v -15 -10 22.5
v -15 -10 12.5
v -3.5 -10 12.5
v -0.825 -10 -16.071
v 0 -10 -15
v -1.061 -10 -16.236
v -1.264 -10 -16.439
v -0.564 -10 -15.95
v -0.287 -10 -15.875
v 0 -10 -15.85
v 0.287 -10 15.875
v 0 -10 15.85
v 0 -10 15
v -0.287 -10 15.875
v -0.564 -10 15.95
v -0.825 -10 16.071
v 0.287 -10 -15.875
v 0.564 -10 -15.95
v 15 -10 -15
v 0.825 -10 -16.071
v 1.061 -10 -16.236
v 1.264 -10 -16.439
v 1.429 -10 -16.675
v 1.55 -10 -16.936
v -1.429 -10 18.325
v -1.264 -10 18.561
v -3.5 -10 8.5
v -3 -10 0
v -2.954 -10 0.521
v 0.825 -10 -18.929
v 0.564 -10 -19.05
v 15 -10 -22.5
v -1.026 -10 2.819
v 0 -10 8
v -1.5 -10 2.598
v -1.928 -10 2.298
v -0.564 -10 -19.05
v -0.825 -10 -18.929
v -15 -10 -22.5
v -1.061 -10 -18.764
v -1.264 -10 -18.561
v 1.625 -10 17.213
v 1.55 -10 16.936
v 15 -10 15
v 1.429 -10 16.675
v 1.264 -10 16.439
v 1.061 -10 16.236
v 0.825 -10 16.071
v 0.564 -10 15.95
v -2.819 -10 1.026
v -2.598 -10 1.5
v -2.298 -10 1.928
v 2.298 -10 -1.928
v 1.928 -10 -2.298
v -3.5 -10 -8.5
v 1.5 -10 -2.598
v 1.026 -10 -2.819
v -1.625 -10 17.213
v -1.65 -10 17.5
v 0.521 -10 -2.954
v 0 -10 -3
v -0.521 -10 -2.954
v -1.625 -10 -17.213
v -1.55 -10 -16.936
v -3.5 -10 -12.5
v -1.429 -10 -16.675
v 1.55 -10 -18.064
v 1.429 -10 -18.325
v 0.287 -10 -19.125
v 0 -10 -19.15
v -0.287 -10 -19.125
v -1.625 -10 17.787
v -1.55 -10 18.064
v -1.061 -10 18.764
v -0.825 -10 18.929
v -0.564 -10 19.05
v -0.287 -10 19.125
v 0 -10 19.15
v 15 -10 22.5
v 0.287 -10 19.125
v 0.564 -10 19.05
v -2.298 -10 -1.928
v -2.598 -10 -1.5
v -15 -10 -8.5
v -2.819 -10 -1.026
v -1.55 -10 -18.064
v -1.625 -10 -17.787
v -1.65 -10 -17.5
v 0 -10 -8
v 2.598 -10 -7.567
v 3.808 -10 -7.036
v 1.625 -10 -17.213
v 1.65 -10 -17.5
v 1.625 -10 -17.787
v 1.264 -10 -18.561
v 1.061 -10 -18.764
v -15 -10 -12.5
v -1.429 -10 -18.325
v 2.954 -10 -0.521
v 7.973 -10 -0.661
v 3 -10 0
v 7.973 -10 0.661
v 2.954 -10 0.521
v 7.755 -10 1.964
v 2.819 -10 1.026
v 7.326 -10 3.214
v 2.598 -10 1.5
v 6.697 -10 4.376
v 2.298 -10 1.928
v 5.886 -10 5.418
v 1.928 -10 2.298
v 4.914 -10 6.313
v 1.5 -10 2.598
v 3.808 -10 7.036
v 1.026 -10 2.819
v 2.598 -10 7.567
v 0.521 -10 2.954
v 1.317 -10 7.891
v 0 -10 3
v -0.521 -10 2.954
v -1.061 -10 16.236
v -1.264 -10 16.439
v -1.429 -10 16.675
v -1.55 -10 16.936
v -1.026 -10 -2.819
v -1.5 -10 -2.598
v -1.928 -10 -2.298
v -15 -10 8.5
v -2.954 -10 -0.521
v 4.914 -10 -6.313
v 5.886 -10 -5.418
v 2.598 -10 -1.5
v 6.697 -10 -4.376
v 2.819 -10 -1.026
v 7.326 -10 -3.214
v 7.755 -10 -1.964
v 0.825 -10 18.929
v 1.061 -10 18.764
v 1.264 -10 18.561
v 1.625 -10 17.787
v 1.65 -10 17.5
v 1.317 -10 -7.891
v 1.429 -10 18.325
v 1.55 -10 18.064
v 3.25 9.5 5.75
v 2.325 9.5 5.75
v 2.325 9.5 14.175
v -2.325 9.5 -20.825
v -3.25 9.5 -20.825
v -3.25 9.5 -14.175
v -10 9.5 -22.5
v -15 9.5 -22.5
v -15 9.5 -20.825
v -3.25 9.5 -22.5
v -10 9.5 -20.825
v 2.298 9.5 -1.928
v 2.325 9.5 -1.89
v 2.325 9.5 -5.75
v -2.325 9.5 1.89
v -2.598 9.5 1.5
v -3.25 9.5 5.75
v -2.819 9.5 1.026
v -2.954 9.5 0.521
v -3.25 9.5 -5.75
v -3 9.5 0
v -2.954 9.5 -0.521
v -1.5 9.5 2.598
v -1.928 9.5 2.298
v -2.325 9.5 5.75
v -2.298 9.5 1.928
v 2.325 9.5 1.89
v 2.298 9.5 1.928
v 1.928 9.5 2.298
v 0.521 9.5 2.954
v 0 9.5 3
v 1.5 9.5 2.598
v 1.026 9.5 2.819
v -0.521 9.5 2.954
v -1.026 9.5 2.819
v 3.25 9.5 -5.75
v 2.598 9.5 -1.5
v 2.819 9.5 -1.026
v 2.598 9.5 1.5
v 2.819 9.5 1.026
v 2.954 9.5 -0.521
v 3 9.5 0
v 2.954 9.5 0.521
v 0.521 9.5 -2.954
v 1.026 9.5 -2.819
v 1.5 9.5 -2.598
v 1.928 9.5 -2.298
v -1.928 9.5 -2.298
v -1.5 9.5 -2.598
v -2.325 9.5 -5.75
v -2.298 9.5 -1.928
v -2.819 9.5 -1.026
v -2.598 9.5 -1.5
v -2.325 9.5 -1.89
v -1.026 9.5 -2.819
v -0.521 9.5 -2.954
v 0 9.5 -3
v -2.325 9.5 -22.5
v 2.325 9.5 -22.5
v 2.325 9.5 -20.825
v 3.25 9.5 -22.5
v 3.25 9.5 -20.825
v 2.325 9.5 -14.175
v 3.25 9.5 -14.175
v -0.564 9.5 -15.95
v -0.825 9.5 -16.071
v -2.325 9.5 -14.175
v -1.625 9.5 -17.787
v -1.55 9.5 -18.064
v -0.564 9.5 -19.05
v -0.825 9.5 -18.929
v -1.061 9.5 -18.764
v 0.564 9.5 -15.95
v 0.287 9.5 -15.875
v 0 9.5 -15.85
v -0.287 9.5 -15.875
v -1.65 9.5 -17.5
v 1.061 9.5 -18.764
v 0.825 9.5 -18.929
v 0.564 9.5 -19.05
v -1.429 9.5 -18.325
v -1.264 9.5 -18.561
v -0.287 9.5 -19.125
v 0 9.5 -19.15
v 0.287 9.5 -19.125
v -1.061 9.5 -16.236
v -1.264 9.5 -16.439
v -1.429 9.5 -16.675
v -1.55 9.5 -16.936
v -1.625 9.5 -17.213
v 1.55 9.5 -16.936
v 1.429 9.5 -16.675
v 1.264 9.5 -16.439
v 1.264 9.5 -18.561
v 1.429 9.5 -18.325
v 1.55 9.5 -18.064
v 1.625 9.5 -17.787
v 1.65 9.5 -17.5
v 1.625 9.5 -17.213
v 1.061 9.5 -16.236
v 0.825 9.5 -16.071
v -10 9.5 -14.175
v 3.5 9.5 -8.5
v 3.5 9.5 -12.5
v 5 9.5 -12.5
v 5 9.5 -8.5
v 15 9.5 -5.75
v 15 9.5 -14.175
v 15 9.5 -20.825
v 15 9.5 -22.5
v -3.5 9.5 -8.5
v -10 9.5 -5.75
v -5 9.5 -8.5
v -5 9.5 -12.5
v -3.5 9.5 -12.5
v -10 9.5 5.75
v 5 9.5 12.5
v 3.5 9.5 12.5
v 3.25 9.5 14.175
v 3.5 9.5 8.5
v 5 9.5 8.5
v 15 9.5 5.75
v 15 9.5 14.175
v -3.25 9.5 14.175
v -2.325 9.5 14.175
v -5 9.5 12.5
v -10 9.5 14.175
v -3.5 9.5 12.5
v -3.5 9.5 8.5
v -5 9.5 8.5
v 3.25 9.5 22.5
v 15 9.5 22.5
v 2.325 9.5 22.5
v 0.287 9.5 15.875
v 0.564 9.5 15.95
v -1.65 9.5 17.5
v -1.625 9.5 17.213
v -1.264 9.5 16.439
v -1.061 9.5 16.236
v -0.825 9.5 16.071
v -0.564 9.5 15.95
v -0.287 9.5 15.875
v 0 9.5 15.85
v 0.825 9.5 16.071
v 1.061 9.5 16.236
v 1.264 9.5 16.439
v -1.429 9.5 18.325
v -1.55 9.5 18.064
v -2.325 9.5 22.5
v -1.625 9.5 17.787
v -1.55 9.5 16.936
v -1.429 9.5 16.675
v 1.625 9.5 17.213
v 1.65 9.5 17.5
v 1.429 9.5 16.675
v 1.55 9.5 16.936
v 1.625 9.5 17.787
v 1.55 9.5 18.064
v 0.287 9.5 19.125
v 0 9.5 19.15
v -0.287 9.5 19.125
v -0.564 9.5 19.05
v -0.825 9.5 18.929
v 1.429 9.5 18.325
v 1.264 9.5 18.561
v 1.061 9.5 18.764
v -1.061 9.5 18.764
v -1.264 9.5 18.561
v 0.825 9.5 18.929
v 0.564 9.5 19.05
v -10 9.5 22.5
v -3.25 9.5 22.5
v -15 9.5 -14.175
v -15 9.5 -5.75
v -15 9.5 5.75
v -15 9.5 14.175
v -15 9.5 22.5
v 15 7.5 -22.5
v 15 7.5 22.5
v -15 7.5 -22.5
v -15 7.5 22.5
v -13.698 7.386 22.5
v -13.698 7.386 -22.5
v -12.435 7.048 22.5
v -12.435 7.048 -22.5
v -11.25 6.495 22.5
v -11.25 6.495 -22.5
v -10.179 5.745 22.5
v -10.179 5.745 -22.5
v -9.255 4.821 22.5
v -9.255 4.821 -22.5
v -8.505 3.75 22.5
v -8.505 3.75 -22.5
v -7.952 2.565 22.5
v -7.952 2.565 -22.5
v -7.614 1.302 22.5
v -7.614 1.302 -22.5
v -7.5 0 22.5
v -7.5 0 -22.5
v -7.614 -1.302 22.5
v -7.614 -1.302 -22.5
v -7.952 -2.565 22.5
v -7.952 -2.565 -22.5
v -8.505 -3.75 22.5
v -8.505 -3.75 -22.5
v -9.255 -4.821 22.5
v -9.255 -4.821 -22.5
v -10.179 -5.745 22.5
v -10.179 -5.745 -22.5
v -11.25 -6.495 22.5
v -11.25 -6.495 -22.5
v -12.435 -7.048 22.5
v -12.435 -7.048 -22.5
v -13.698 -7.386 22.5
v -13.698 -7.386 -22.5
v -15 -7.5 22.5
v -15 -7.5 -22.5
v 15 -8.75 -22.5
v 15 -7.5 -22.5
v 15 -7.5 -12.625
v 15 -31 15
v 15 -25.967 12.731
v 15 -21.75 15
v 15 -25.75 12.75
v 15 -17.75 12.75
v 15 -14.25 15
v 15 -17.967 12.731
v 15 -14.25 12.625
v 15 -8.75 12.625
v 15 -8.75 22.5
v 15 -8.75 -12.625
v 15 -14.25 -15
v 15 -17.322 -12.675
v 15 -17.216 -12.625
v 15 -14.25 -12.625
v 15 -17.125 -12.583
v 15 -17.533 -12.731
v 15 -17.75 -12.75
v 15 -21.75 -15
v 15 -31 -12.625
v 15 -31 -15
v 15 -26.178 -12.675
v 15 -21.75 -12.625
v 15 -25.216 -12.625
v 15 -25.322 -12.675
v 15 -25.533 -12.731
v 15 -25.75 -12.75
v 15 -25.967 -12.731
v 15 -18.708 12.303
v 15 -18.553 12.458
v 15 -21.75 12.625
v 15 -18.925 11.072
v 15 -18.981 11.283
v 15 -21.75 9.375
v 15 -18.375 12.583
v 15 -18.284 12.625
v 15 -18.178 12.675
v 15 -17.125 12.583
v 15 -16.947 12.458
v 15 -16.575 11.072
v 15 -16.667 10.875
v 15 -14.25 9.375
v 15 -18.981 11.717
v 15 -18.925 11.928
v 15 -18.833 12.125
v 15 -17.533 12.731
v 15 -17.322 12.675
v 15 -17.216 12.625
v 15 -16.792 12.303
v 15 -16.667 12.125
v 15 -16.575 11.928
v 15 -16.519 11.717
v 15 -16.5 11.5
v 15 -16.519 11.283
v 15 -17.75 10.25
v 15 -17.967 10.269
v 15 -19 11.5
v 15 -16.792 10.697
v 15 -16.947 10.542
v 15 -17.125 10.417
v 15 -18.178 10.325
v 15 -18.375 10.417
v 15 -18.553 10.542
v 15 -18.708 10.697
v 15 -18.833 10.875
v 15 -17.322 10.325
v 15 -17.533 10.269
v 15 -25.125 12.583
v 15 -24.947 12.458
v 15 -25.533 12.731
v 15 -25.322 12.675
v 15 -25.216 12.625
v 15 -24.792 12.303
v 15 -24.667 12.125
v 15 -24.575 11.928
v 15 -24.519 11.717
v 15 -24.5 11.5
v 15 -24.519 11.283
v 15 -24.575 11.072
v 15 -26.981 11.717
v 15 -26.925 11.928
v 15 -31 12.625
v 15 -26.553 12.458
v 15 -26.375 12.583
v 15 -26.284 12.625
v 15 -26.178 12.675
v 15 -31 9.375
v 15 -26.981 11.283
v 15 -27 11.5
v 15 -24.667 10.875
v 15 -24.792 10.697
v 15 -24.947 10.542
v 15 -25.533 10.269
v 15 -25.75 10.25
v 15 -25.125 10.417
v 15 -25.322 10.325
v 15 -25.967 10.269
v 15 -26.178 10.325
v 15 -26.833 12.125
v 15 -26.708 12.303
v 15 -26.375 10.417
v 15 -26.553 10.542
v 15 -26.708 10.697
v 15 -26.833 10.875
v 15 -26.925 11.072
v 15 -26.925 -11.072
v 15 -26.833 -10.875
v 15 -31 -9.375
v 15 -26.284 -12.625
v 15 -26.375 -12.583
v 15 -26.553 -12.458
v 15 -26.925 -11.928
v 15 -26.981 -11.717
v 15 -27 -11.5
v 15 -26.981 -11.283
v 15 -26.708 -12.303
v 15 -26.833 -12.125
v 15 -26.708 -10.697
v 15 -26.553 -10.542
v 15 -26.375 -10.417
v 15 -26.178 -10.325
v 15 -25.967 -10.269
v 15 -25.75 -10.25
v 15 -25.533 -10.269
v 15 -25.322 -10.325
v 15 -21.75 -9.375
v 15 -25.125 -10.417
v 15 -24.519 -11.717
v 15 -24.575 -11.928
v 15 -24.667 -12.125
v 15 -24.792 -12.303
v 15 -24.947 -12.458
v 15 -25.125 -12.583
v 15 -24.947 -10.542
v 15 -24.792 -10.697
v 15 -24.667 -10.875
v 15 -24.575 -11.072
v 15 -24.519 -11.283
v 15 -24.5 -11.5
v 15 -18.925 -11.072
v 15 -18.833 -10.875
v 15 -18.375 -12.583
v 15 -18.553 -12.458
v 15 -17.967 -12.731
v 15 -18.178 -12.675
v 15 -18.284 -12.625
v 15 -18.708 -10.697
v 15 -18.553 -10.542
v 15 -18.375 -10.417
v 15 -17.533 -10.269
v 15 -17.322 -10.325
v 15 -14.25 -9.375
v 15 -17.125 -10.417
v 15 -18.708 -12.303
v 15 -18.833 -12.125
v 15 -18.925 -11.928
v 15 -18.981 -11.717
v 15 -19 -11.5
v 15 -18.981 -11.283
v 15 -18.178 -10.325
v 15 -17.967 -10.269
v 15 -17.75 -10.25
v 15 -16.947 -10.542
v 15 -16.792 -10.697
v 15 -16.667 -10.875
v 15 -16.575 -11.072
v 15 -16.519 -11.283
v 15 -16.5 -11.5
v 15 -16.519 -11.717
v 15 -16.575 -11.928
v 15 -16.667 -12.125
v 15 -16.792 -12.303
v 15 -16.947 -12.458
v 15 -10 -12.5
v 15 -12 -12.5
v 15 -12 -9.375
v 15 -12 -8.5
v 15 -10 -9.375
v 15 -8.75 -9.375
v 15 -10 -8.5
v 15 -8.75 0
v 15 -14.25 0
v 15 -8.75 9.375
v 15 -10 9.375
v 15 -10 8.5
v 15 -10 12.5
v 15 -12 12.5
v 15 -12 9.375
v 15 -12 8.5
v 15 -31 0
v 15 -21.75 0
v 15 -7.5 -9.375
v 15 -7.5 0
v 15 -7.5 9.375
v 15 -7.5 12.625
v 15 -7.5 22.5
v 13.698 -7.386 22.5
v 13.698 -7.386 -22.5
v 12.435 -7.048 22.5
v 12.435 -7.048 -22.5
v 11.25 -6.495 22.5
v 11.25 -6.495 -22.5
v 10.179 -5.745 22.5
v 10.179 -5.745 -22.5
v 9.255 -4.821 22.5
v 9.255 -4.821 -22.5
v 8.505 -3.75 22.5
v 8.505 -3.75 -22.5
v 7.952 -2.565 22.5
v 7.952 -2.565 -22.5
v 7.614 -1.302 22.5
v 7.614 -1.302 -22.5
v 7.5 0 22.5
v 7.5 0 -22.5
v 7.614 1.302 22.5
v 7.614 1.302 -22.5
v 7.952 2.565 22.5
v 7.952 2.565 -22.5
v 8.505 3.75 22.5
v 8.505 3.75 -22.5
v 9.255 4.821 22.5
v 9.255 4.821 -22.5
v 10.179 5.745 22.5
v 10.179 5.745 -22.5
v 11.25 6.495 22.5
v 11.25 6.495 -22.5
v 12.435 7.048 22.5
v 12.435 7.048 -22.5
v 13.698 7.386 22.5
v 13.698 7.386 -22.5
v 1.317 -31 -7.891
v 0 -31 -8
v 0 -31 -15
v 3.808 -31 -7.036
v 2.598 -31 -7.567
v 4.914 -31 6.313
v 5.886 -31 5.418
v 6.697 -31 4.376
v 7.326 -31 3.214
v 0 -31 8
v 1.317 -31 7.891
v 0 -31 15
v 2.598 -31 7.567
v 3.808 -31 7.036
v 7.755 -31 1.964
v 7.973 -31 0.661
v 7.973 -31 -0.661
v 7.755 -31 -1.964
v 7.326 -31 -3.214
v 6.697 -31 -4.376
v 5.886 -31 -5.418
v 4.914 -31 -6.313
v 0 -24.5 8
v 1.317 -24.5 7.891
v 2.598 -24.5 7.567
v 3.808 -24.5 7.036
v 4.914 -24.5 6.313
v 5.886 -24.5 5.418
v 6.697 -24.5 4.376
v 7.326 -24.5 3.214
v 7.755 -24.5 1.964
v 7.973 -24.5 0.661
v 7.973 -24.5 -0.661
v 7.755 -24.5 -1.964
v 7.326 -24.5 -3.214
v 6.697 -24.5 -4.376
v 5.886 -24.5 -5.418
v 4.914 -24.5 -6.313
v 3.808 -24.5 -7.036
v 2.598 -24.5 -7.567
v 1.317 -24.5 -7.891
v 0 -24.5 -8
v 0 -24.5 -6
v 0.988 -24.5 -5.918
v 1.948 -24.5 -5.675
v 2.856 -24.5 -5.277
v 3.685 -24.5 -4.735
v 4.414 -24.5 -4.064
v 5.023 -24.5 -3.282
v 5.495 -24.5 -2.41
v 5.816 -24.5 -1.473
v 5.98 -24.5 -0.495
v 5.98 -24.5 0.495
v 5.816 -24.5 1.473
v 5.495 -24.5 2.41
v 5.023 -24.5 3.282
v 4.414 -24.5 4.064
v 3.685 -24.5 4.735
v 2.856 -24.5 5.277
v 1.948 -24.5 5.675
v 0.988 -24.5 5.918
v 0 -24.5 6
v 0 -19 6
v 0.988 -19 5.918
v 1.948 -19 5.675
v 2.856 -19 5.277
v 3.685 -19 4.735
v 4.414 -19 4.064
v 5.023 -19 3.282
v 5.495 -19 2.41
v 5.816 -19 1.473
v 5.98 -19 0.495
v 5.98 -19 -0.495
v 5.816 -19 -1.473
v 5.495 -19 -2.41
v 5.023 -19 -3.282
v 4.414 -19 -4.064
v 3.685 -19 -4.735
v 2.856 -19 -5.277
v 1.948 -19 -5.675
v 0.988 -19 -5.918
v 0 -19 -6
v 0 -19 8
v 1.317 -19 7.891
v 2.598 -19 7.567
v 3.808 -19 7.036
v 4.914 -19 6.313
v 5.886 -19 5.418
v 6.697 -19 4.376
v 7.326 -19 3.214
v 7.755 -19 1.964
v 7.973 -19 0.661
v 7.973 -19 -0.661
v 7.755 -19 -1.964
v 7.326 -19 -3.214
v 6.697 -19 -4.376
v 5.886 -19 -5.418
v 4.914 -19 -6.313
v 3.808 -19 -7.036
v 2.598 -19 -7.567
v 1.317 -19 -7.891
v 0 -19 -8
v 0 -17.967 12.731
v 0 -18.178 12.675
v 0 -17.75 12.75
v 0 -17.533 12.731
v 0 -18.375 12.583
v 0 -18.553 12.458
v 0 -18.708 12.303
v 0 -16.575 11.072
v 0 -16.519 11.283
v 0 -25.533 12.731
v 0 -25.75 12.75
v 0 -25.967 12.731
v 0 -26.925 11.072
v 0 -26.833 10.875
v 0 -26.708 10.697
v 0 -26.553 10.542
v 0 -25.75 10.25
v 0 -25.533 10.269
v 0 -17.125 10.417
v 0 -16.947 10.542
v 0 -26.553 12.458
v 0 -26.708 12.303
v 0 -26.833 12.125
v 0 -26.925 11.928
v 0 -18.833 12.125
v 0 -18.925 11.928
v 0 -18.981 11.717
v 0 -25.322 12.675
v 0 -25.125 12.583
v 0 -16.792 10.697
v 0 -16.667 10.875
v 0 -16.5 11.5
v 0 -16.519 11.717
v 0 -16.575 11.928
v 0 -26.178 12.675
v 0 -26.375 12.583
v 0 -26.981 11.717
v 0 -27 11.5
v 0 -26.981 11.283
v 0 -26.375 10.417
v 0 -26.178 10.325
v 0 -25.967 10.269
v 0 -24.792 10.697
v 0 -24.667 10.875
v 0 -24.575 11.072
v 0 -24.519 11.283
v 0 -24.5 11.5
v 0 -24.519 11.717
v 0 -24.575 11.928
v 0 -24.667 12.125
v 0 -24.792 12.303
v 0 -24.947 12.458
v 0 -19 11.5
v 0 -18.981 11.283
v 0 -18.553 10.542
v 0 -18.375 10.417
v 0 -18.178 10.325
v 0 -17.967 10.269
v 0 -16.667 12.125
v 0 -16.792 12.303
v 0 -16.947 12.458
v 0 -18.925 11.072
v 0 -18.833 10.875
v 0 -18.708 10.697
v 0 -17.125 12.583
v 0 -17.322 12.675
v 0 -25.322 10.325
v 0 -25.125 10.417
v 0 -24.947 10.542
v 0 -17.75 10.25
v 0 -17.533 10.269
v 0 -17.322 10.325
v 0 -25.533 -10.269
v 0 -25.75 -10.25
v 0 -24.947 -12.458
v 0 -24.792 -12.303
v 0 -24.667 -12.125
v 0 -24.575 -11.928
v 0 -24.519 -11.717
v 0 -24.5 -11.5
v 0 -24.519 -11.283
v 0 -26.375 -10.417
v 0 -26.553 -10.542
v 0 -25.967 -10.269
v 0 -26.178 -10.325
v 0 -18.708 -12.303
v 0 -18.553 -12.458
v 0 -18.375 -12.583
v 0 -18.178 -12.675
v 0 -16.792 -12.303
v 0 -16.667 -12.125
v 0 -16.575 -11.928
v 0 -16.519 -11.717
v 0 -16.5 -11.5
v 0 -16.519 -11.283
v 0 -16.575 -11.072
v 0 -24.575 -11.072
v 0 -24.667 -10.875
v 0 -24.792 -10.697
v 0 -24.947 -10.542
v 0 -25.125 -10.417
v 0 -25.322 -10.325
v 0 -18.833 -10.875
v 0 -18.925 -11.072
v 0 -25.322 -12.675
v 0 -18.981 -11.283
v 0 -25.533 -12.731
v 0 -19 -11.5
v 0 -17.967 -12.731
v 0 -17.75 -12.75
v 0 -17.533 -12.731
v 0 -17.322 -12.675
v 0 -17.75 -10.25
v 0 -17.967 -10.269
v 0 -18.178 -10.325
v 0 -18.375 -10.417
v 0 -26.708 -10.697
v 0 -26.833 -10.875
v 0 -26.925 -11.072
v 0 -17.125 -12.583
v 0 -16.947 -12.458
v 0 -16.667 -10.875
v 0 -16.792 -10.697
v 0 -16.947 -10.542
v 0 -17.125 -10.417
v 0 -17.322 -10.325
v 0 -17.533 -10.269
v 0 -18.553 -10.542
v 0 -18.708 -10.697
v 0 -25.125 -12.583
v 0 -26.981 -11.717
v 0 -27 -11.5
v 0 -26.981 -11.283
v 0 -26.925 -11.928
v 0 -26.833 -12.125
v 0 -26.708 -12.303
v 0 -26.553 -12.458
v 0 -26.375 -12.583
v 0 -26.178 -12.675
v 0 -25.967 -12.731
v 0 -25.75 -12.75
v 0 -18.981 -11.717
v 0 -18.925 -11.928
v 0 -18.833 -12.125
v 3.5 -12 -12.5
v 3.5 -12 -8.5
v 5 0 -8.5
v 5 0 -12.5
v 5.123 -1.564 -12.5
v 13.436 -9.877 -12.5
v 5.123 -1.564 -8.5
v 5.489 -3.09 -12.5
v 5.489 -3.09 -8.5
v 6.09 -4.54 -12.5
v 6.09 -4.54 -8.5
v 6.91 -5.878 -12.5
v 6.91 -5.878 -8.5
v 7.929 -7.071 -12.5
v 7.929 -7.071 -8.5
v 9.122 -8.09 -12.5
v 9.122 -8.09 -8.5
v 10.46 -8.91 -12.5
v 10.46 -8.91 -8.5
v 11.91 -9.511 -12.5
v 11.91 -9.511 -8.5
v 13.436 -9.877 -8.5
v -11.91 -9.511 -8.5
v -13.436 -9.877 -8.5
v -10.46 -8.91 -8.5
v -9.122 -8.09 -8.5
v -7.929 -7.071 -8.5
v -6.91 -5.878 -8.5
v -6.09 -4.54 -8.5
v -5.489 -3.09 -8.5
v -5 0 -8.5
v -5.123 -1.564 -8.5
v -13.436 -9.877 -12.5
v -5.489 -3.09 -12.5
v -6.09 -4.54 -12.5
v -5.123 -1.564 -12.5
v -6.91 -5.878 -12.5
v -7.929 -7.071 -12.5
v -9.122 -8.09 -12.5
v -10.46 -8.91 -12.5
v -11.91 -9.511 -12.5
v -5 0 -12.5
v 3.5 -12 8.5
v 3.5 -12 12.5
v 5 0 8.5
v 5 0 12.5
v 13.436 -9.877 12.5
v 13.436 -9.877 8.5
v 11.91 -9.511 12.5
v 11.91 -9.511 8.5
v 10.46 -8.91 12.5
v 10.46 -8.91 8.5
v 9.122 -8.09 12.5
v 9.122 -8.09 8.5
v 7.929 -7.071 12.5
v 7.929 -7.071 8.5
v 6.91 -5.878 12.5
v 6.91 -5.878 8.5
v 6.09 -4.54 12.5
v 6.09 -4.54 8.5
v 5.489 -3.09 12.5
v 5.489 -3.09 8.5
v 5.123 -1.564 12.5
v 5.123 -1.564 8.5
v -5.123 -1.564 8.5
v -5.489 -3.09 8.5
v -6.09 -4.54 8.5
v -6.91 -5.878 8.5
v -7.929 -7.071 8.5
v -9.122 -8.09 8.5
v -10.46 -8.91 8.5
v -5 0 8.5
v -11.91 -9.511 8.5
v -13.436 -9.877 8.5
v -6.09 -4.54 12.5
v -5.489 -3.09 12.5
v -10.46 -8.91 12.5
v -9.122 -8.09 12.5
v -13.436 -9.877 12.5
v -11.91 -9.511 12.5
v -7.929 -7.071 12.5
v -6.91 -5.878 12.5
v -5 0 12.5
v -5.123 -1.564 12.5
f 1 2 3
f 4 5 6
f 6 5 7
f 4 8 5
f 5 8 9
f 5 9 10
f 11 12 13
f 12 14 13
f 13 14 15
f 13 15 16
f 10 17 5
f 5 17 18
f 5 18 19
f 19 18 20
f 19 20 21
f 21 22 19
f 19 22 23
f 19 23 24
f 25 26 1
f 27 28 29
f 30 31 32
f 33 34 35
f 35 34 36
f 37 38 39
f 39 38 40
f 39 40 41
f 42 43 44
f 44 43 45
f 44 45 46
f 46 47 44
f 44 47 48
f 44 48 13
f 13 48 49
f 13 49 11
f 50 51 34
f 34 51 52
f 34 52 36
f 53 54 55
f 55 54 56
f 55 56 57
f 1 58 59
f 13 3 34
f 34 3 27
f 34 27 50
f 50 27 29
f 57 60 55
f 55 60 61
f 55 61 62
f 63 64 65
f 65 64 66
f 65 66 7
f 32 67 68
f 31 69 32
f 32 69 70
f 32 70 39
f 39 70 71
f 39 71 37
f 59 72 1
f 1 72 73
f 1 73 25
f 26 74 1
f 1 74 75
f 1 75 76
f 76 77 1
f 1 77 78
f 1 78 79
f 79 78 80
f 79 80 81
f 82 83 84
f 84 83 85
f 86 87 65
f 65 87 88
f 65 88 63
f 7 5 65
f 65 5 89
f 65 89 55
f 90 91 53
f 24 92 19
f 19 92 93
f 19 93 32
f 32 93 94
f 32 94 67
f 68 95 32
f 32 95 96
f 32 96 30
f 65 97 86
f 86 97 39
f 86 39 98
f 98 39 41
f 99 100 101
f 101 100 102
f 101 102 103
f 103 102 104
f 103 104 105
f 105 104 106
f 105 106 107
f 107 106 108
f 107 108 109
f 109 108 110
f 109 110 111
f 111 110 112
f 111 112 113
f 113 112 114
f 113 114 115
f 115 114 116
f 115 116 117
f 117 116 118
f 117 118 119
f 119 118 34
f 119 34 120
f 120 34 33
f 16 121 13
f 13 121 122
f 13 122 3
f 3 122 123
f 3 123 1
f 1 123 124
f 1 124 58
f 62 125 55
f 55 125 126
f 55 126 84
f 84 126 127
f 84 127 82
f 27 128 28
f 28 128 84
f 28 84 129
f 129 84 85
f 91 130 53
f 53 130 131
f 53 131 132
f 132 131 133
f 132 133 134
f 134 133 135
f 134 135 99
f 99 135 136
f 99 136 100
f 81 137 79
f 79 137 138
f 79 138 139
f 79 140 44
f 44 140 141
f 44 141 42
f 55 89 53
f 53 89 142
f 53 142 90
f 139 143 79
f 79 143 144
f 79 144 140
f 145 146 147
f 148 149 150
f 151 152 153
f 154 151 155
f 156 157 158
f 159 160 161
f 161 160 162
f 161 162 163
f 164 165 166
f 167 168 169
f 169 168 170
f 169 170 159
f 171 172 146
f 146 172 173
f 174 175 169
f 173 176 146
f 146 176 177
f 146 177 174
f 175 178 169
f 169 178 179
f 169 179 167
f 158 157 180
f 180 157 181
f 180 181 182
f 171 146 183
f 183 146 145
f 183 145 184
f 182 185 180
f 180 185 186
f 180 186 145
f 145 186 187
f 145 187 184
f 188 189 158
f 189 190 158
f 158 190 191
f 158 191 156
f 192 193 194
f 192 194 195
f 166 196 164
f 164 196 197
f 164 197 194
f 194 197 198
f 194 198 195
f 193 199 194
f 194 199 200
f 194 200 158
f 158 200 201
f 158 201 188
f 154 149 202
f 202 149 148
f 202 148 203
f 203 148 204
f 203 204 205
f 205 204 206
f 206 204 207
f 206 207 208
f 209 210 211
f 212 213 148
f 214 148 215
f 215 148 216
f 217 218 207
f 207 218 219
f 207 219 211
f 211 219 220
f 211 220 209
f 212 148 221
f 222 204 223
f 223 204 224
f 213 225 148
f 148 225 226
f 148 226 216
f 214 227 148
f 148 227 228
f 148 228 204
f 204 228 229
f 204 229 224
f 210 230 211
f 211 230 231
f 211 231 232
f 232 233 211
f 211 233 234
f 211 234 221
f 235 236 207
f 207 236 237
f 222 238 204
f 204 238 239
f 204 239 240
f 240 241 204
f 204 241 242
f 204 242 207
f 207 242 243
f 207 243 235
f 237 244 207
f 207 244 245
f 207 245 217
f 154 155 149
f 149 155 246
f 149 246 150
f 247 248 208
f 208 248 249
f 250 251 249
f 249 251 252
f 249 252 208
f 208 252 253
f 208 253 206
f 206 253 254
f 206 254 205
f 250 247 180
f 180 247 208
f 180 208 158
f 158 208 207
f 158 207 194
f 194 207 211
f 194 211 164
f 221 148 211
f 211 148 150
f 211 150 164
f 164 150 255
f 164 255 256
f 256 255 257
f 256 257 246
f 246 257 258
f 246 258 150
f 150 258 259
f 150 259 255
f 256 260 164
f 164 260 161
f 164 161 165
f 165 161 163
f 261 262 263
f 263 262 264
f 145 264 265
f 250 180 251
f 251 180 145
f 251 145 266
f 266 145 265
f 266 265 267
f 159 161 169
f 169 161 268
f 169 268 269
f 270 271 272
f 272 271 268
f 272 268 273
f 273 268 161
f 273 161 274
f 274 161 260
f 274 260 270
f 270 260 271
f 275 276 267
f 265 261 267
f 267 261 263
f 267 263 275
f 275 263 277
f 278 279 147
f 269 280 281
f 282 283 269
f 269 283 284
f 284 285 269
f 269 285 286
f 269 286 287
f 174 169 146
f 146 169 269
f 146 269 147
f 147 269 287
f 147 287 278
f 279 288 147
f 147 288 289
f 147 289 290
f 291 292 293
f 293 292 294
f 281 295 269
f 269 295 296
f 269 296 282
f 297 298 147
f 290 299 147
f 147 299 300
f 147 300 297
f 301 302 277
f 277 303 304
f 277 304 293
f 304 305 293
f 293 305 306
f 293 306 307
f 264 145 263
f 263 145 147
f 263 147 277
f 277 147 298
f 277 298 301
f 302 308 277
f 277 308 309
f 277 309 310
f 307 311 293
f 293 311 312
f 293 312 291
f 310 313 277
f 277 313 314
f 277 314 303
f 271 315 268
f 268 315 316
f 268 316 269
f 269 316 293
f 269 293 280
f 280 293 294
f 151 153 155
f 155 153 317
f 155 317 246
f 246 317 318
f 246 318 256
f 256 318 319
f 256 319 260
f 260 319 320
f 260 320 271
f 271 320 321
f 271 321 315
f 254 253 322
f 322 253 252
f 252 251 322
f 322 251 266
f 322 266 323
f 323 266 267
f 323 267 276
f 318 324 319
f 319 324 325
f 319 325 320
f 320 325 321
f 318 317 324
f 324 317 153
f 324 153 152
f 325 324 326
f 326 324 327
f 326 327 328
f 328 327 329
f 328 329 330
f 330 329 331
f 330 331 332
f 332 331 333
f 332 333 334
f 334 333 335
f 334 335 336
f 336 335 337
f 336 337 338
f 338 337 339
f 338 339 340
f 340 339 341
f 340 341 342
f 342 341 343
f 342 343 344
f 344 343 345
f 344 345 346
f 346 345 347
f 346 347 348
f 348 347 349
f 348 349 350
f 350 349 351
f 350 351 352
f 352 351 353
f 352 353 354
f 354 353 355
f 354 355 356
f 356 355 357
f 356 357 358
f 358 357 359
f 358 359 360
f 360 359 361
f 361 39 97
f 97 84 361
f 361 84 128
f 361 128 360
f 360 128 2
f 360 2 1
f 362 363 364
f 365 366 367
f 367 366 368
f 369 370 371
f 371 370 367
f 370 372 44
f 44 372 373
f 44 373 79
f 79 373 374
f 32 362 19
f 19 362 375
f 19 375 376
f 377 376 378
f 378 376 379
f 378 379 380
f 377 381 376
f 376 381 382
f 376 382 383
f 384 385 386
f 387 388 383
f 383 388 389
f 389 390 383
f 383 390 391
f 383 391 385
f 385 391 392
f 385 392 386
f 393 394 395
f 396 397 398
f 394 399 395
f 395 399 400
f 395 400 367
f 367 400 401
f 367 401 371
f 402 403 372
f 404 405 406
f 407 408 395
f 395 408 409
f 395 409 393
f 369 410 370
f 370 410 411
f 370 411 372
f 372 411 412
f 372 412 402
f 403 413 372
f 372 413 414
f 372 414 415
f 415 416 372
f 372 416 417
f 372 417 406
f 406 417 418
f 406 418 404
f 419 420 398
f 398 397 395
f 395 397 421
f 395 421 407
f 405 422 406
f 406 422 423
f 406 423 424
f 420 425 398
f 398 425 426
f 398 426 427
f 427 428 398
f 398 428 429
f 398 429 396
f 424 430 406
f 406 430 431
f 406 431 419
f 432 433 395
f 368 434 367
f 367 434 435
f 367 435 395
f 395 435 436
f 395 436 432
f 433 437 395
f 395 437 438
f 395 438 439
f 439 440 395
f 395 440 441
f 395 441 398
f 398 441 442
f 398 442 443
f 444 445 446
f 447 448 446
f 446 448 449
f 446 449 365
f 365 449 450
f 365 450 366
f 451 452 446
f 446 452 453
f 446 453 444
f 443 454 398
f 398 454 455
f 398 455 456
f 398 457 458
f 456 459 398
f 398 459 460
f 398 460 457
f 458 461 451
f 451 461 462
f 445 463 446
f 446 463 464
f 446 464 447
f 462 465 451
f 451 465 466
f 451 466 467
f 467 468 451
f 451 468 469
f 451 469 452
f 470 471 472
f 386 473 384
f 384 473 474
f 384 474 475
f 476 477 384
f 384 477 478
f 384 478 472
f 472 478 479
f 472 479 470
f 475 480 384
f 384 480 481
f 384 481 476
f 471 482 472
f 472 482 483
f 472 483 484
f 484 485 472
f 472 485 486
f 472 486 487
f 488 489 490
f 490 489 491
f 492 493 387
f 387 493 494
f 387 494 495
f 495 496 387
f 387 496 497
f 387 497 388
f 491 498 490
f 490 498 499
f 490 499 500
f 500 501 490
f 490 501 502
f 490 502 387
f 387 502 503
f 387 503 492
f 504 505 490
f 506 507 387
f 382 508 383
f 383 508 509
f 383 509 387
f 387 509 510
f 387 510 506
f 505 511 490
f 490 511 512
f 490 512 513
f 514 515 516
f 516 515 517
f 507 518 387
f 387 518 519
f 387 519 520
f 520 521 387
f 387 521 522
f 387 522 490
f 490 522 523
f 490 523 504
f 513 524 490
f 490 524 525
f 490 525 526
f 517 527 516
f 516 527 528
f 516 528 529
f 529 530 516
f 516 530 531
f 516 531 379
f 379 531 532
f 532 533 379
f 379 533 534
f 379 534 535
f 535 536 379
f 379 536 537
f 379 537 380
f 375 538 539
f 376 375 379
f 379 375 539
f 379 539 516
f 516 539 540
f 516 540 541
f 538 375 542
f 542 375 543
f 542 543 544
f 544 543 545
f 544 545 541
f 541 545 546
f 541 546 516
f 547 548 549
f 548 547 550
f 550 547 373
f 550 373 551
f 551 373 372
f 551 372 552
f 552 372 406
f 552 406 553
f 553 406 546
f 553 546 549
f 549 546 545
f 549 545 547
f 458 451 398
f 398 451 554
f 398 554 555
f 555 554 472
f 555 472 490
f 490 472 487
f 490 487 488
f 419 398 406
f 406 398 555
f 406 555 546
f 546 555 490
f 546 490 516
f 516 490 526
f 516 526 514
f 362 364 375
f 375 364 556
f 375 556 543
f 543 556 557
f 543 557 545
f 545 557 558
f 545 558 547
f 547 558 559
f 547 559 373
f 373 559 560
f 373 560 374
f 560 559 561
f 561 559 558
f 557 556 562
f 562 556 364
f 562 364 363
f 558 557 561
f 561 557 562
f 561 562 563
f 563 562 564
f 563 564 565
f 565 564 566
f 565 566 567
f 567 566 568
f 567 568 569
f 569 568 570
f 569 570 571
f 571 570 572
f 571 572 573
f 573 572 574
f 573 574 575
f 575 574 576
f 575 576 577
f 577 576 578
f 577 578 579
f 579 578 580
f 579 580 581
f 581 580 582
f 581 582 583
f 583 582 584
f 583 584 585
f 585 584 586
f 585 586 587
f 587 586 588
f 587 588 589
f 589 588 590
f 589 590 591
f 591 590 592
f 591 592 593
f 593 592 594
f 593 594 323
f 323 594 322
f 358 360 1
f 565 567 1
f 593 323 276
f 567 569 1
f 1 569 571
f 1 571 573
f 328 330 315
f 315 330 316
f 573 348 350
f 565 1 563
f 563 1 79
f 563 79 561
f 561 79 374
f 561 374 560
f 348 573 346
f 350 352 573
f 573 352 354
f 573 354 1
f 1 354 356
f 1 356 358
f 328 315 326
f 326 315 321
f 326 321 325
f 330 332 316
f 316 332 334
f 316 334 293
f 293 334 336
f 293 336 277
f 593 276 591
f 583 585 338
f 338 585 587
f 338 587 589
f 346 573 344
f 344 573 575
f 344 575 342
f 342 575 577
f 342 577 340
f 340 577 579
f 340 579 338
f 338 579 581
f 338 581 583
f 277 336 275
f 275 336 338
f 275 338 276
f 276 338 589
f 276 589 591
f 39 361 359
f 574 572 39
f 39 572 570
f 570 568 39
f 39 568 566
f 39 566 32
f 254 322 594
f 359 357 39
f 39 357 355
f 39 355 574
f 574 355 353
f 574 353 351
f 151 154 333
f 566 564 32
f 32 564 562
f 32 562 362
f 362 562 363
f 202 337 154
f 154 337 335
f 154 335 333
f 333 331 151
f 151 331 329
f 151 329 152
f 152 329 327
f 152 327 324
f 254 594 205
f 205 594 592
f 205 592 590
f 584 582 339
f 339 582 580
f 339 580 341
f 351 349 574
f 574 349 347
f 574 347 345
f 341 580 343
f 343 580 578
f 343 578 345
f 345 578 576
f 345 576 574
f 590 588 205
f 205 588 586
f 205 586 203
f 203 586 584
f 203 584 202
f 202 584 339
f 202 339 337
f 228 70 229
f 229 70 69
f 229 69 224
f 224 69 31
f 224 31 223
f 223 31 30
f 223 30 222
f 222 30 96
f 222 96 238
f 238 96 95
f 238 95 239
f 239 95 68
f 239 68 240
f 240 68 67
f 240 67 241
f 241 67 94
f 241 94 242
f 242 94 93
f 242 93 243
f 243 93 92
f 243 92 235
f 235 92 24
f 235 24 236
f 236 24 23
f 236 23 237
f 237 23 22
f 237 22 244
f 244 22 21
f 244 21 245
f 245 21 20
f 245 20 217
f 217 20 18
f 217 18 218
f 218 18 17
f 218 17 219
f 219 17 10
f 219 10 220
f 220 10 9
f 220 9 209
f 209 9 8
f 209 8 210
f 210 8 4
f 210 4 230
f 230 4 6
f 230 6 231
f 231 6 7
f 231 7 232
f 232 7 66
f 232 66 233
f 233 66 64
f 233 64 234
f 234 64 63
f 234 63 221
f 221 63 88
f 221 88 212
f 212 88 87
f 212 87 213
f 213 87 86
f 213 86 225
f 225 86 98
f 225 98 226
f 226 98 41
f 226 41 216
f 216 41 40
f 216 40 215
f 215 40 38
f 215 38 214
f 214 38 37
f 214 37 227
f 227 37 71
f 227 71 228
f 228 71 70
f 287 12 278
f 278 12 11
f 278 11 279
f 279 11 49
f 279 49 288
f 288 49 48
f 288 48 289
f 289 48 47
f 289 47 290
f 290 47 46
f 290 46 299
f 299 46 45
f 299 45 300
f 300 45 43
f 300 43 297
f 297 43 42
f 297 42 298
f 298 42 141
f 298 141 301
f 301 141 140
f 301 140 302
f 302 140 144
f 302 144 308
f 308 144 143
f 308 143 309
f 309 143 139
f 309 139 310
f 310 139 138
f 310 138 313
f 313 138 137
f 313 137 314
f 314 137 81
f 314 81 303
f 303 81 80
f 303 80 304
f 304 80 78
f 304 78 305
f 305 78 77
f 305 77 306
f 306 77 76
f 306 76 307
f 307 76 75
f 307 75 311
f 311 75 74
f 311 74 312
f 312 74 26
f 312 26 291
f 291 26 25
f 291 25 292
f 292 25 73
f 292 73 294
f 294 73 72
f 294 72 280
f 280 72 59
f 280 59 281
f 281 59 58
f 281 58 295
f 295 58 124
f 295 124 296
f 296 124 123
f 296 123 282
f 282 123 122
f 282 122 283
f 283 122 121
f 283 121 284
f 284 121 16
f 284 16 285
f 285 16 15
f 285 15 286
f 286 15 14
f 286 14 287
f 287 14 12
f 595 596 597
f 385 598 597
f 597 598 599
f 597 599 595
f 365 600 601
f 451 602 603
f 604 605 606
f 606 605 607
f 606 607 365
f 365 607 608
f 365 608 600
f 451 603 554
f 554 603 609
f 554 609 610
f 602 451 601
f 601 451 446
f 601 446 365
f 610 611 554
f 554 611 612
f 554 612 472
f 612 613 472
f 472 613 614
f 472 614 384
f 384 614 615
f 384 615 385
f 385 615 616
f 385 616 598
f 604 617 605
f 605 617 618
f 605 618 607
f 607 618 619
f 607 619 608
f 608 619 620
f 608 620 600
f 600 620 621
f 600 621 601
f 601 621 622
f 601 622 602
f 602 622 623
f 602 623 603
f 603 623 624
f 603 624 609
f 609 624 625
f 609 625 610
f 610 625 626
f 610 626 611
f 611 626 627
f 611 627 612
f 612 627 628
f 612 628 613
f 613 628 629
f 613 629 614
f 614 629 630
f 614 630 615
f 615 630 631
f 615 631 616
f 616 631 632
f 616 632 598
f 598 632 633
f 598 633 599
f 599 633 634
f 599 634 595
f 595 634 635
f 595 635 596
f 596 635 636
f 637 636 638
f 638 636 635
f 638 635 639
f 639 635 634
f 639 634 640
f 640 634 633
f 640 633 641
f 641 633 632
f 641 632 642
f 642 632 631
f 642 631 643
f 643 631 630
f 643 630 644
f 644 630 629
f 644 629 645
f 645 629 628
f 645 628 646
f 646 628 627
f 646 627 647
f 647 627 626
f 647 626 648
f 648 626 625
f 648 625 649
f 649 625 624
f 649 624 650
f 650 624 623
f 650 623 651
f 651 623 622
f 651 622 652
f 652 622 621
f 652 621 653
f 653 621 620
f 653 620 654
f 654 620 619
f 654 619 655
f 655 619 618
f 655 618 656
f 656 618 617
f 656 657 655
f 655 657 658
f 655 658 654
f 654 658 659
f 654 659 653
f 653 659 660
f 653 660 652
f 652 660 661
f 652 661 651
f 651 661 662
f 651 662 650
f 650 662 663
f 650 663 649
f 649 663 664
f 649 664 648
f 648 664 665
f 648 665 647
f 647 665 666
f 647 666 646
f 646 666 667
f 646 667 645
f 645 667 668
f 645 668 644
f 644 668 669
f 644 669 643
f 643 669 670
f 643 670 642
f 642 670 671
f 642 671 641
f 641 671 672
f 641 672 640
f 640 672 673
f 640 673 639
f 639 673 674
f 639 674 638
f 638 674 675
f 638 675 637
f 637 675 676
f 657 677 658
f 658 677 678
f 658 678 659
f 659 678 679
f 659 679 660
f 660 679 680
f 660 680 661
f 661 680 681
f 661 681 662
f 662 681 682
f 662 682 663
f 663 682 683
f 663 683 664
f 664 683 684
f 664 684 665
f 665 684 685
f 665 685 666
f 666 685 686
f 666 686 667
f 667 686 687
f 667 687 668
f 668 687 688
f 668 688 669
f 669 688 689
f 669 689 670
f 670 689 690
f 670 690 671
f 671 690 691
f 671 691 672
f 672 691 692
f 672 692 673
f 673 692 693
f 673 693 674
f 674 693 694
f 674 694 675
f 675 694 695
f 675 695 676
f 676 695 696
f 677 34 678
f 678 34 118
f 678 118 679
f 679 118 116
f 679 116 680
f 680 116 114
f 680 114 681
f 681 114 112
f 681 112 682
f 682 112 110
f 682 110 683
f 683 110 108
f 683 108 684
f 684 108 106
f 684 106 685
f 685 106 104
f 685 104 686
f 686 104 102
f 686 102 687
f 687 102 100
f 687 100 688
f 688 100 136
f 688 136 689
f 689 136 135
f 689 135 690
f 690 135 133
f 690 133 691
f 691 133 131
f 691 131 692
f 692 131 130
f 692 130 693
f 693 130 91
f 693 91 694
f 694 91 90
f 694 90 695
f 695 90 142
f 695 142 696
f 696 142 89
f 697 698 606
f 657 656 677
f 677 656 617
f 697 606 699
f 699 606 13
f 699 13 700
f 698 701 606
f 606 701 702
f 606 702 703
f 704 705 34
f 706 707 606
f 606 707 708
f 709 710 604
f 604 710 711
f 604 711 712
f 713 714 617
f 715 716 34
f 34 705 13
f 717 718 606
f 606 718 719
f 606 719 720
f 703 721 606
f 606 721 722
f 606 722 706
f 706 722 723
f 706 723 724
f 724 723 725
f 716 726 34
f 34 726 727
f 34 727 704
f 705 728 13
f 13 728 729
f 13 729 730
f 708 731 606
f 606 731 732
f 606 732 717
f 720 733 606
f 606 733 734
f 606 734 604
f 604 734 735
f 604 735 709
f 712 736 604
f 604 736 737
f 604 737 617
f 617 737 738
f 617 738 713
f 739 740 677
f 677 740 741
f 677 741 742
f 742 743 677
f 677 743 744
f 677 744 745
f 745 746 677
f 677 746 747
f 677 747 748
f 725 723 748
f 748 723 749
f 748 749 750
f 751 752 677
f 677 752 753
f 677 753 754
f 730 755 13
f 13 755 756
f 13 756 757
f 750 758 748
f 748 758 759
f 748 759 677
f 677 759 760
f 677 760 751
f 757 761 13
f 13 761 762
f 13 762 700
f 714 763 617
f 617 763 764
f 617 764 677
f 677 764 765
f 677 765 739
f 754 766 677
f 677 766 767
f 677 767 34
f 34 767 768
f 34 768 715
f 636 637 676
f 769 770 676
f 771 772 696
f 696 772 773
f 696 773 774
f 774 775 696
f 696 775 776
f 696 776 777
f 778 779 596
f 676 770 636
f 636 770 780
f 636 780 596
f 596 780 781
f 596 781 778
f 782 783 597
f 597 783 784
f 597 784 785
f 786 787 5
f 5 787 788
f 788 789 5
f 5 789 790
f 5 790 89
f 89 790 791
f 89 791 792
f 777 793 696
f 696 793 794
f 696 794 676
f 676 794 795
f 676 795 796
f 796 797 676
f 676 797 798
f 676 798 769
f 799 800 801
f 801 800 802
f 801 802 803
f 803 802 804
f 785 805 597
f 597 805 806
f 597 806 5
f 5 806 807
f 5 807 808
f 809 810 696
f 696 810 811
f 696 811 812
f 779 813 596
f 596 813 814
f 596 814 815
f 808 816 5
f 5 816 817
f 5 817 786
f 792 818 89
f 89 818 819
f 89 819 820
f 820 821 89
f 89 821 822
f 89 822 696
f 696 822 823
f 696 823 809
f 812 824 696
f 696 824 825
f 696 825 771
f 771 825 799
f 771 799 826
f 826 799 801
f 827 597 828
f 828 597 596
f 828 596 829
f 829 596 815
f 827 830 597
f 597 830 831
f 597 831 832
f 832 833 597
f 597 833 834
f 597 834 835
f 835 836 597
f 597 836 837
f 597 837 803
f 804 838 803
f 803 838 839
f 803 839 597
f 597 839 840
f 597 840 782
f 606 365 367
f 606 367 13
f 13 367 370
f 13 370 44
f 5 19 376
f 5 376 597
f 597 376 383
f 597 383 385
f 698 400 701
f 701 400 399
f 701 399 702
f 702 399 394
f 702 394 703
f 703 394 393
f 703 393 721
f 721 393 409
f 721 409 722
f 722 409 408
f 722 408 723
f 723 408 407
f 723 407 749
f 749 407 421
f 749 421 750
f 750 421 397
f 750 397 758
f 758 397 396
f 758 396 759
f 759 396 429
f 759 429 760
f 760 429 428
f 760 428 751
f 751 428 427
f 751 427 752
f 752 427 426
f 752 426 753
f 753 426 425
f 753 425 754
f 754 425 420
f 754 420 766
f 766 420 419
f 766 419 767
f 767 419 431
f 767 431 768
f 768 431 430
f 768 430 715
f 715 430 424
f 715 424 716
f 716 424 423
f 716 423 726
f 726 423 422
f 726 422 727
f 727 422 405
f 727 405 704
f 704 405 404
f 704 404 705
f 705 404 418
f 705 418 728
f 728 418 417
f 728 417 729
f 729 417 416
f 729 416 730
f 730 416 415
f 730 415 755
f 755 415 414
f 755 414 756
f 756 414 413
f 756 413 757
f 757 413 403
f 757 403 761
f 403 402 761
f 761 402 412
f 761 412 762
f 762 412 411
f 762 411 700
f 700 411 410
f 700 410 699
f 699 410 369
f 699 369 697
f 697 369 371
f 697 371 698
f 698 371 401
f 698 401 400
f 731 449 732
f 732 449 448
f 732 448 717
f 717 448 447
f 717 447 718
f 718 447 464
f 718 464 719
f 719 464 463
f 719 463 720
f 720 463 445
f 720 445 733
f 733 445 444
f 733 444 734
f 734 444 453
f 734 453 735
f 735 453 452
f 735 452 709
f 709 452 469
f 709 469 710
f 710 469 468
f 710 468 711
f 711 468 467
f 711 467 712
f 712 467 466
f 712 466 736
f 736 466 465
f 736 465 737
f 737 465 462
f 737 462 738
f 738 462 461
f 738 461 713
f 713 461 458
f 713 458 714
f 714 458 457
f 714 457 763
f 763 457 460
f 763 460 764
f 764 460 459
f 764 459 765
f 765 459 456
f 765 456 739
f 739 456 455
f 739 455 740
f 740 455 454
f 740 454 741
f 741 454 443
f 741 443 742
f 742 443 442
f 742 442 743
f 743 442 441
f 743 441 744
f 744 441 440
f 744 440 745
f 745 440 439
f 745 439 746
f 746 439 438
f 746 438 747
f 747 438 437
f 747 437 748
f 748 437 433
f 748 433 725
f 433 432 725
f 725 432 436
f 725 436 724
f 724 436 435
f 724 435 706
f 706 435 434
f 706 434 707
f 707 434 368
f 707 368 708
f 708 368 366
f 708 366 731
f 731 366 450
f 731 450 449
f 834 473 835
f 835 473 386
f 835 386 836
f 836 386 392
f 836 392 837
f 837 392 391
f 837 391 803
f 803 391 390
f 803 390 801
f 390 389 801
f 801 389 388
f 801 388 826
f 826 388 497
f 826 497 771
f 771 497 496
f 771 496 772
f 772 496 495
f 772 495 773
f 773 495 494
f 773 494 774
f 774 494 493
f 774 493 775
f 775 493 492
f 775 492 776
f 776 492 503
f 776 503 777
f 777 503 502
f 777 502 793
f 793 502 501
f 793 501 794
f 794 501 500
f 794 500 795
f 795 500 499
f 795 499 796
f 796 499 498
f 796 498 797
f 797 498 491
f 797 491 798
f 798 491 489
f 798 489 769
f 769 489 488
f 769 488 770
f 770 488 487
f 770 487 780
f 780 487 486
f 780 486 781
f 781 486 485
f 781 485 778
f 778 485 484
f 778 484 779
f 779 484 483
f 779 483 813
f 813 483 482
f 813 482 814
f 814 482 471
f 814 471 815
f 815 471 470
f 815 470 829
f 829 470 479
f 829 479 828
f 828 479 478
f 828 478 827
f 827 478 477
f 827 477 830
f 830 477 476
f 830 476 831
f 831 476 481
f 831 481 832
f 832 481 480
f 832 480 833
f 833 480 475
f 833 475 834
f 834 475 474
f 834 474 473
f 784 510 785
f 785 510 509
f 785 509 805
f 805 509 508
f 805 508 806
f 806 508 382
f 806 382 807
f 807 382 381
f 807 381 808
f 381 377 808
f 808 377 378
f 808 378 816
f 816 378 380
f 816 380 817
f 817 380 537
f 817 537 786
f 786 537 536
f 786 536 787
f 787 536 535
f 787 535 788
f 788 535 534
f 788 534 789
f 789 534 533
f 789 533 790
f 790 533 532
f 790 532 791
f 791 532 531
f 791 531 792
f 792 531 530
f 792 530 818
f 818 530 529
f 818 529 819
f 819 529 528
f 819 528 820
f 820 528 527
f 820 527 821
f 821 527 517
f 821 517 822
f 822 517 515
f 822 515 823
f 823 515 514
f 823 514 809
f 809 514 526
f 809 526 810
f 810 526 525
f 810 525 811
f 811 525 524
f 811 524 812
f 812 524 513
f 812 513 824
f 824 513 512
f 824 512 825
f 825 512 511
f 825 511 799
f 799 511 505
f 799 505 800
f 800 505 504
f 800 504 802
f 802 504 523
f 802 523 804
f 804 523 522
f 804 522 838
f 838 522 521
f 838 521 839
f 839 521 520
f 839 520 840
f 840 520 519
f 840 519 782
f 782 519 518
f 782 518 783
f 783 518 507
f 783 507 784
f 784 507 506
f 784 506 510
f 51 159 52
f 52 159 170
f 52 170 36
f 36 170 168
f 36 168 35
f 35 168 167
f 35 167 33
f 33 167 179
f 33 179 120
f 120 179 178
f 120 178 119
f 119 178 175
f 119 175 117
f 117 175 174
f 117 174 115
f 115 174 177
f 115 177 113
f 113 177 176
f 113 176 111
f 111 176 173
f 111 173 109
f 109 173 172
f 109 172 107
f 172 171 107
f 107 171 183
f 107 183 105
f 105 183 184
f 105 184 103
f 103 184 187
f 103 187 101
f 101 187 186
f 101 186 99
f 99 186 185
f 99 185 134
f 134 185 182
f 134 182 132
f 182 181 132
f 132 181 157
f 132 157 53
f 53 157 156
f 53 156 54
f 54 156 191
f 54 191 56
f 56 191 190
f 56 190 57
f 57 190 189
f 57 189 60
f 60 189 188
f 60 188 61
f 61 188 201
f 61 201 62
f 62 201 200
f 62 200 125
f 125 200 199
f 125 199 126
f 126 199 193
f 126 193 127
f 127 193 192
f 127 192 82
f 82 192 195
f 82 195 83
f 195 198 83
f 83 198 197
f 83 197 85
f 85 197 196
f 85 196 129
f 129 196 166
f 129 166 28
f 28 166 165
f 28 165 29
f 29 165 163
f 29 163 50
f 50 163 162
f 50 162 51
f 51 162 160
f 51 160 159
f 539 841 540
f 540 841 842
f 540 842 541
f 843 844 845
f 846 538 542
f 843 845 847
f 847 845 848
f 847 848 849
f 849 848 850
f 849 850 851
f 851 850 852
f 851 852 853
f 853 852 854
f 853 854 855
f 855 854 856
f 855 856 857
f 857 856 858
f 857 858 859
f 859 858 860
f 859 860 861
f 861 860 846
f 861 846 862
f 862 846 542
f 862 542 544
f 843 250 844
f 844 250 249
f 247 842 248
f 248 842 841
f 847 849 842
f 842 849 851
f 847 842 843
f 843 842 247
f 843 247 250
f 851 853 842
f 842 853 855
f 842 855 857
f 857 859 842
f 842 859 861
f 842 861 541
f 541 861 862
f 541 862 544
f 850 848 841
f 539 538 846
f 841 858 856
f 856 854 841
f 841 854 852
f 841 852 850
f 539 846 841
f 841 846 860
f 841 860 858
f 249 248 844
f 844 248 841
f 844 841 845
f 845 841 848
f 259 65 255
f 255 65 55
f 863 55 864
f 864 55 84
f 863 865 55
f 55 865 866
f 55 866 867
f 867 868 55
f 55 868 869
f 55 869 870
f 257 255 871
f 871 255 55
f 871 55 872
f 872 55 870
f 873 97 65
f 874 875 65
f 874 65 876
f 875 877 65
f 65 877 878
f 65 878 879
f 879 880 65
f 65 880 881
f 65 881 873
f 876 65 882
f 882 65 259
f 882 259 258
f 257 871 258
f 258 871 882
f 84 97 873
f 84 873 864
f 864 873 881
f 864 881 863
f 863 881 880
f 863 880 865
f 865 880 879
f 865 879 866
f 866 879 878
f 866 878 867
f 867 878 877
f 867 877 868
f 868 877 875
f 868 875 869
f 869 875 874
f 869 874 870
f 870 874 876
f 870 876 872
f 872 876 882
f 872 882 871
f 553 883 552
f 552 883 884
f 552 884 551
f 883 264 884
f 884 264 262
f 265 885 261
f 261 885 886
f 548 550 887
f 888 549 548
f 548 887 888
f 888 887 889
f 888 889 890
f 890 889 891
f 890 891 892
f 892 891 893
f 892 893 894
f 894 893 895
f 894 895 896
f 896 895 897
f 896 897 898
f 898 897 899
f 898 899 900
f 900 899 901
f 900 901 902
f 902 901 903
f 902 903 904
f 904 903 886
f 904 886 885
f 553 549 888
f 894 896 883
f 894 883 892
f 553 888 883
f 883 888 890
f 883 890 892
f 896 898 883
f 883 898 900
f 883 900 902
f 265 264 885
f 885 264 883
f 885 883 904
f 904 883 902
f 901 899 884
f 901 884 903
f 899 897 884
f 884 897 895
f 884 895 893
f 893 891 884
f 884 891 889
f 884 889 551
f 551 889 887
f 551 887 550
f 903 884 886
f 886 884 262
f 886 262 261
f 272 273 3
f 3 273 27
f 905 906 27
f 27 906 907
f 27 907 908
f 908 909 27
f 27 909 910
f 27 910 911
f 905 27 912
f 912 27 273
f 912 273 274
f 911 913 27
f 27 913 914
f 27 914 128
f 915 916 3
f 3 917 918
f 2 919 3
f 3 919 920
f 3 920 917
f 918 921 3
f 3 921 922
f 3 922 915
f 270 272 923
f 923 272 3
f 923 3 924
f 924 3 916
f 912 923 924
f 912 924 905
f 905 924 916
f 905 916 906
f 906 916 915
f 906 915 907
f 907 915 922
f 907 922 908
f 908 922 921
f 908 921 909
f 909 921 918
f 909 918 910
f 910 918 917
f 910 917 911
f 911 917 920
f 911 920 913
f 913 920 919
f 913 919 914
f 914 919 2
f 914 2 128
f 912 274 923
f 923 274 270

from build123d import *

# Parameters (mm, degrees)
BOSS_EXTRUDE1_DEPTH   = 22.5
M4X0_7_TAPPED_HOLE2_D = 3.3
REVOLVE1_ANGLE        = 180
BOSS_EXTRUDE4_REACH   = 42.5
M3X0_5_TAPPED_HOLE1_D = 2.5
SKETCH2_R             = 3
CUT_EXTRUDE1_DEPTH    = 50
CUT_EXTRUDE3_START    = -10
CUT_EXTRUDE3_DEPTH    = 4


with BuildPart() as part:
    # Sketch1 → Boss-Extrude1 (new body, symmetric)
    with BuildSketch(Plane.XY):
        with BuildLine():
            Line((-15, 7.5), (-15, 9.5))
            Line((-15, 9.5), (15, 9.5))
            Line((15, 9.5), (15, 7.5))
            ThreePointArc((15, 7.5), (7.5, 0), (15, -7.5))
            Line((15, -7.5), (15, -10))
            Line((15, -10), (-15, -10))
            Line((-15, -10), (-15, -7.5))
            ThreePointArc((-15, -7.5), (-7.5, 0), (-15, 7.5))
        make_face()
    extrude(amount=BOSS_EXTRUDE1_DEPTH, both=True)

    # M4x0.7 Tapped Hole2 (through all)
    with Locations(Plane(origin=(0, -10, 0), x_dir=(-1, 0, 0), z_dir=(0, -1, 0))):
        with Locations((0, -17.5), (0, 17.5)):
            Hole(M4X0_7_TAPPED_HOLE2_D / 2)

    # Sketch12 → Revolve1 (revolve, symmetric)
    with BuildSketch(Plane.XY) as revolve1_sk:
        Polygon((8, -31), (8, -24.5), (6, -24.5), (6, -19), (8, -19), (8, -10), (15, -10), (15, -31), align=None)
    revolve(axis=Axis((0, 0, 0), (0, -1, 0)), revolution_arc=REVOLVE1_ANGLE / 2)
    revolve(revolve1_sk.sketch, axis=Axis((0, 0, 0), (0, 1, 0)), revolution_arc=REVOLVE1_ANGLE / 2)

    # Sketch15 → Boss-Extrude4 (add, up to next)
    with BuildSketch(Plane.XZ.offset(31), mode=Mode.PRIVATE) as boss_extrude4_sk1:
        with BuildLine():
            Line((15, 15), (0, 15))
            ThreePointArc((0, 15), (10.606601729, 10.606601707), (15, -3.1e-08))
            Line((15, -3.1e-08), (15, 15))
        make_face()
    boss_extrude4_tool1 = extrude(boss_extrude4_sk1.sketch, amount=-BOSS_EXTRUDE4_REACH, mode=Mode.PRIVATE) - part.part
    add(boss_extrude4_tool1.solids().sort_by_distance((11.649481, -31, 11.649481))[0])
    # Sketch15 → Boss-Extrude4 (add, up to next)
    with BuildSketch(Plane.XZ.offset(31), mode=Mode.PRIVATE) as boss_extrude4_sk2:
        with BuildLine():
            Line((15, -15), (15, -3.1e-08))
            ThreePointArc((15, -3.1e-08), (10.606601707, -10.606601729), (0, -15))
            Line((0, -15), (15, -15))
        make_face()
    boss_extrude4_tool2 = extrude(boss_extrude4_sk2.sketch, amount=-BOSS_EXTRUDE4_REACH, mode=Mode.PRIVATE) - part.part
    add(boss_extrude4_tool2.solids().sort_by_distance((11.649481, -31, -11.649481))[0])

    # M3x0.5 Tapped Hole1 (through all)
    with Locations(Plane.ZY):
        with Locations((-11.5, -17.75), (-11.5, -25.75), (11.5, -25.75), (11.5, -17.75)):
            Hole(M3X0_5_TAPPED_HOLE1_D / 2)

    # Sketch2 → Cut-Extrude1 (cut)
    with BuildSketch(Plane(origin=(0, 9.5, 0), x_dir=(1, 0, 0), z_dir=(0, 1, 0))):
        Circle(SKETCH2_R)
    extrude(amount=-CUT_EXTRUDE1_DEPTH, mode=Mode.SUBTRACT)

    # Sketch11 → Cut-Extrude3 (cut)
    with BuildSketch(Plane(origin=(0, 0, -22.5), x_dir=(-1, 0, 0), z_dir=(0, 0, -1)).offset(CUT_EXTRUDE3_START)):
        with BuildLine():
            Line((-5, 9.5), (-5, 0))
            ThreePointArc((-5, 0), (-7.928932188, -7.071067812), (-15, -10))
            Line((-15, -10), (-15, -12))
            Line((-15, -12), (-3.5, -12))
            Line((-3.5, -12), (-3.5, -10))
            Line((-3.5, -10), (-3.5, 9.5))
            Line((-3.5, 9.5), (-5, 9.5))
        make_face()
        with BuildLine():
            Line((3.5, 9.5), (5, 9.5))
            Line((5, 9.5), (5, 0))
            ThreePointArc((5, 0), (7.928932188, -7.071067812), (15, -10))
            Line((15, -10), (15, -12))
            Line((15, -12), (3.5, -12))
            Line((3.5, -12), (3.5, -10))
            Line((3.5, -10), (3.5, 9.5))
        make_face()
    cut_extrude3 = extrude(amount=-CUT_EXTRUDE3_DEPTH, mode=Mode.SUBTRACT)

    # Mirror1: Cut-Extrude3 across plane
    add(cut_extrude3.mirror(Plane.XY), mode=Mode.SUBTRACT)


solid = part.part
